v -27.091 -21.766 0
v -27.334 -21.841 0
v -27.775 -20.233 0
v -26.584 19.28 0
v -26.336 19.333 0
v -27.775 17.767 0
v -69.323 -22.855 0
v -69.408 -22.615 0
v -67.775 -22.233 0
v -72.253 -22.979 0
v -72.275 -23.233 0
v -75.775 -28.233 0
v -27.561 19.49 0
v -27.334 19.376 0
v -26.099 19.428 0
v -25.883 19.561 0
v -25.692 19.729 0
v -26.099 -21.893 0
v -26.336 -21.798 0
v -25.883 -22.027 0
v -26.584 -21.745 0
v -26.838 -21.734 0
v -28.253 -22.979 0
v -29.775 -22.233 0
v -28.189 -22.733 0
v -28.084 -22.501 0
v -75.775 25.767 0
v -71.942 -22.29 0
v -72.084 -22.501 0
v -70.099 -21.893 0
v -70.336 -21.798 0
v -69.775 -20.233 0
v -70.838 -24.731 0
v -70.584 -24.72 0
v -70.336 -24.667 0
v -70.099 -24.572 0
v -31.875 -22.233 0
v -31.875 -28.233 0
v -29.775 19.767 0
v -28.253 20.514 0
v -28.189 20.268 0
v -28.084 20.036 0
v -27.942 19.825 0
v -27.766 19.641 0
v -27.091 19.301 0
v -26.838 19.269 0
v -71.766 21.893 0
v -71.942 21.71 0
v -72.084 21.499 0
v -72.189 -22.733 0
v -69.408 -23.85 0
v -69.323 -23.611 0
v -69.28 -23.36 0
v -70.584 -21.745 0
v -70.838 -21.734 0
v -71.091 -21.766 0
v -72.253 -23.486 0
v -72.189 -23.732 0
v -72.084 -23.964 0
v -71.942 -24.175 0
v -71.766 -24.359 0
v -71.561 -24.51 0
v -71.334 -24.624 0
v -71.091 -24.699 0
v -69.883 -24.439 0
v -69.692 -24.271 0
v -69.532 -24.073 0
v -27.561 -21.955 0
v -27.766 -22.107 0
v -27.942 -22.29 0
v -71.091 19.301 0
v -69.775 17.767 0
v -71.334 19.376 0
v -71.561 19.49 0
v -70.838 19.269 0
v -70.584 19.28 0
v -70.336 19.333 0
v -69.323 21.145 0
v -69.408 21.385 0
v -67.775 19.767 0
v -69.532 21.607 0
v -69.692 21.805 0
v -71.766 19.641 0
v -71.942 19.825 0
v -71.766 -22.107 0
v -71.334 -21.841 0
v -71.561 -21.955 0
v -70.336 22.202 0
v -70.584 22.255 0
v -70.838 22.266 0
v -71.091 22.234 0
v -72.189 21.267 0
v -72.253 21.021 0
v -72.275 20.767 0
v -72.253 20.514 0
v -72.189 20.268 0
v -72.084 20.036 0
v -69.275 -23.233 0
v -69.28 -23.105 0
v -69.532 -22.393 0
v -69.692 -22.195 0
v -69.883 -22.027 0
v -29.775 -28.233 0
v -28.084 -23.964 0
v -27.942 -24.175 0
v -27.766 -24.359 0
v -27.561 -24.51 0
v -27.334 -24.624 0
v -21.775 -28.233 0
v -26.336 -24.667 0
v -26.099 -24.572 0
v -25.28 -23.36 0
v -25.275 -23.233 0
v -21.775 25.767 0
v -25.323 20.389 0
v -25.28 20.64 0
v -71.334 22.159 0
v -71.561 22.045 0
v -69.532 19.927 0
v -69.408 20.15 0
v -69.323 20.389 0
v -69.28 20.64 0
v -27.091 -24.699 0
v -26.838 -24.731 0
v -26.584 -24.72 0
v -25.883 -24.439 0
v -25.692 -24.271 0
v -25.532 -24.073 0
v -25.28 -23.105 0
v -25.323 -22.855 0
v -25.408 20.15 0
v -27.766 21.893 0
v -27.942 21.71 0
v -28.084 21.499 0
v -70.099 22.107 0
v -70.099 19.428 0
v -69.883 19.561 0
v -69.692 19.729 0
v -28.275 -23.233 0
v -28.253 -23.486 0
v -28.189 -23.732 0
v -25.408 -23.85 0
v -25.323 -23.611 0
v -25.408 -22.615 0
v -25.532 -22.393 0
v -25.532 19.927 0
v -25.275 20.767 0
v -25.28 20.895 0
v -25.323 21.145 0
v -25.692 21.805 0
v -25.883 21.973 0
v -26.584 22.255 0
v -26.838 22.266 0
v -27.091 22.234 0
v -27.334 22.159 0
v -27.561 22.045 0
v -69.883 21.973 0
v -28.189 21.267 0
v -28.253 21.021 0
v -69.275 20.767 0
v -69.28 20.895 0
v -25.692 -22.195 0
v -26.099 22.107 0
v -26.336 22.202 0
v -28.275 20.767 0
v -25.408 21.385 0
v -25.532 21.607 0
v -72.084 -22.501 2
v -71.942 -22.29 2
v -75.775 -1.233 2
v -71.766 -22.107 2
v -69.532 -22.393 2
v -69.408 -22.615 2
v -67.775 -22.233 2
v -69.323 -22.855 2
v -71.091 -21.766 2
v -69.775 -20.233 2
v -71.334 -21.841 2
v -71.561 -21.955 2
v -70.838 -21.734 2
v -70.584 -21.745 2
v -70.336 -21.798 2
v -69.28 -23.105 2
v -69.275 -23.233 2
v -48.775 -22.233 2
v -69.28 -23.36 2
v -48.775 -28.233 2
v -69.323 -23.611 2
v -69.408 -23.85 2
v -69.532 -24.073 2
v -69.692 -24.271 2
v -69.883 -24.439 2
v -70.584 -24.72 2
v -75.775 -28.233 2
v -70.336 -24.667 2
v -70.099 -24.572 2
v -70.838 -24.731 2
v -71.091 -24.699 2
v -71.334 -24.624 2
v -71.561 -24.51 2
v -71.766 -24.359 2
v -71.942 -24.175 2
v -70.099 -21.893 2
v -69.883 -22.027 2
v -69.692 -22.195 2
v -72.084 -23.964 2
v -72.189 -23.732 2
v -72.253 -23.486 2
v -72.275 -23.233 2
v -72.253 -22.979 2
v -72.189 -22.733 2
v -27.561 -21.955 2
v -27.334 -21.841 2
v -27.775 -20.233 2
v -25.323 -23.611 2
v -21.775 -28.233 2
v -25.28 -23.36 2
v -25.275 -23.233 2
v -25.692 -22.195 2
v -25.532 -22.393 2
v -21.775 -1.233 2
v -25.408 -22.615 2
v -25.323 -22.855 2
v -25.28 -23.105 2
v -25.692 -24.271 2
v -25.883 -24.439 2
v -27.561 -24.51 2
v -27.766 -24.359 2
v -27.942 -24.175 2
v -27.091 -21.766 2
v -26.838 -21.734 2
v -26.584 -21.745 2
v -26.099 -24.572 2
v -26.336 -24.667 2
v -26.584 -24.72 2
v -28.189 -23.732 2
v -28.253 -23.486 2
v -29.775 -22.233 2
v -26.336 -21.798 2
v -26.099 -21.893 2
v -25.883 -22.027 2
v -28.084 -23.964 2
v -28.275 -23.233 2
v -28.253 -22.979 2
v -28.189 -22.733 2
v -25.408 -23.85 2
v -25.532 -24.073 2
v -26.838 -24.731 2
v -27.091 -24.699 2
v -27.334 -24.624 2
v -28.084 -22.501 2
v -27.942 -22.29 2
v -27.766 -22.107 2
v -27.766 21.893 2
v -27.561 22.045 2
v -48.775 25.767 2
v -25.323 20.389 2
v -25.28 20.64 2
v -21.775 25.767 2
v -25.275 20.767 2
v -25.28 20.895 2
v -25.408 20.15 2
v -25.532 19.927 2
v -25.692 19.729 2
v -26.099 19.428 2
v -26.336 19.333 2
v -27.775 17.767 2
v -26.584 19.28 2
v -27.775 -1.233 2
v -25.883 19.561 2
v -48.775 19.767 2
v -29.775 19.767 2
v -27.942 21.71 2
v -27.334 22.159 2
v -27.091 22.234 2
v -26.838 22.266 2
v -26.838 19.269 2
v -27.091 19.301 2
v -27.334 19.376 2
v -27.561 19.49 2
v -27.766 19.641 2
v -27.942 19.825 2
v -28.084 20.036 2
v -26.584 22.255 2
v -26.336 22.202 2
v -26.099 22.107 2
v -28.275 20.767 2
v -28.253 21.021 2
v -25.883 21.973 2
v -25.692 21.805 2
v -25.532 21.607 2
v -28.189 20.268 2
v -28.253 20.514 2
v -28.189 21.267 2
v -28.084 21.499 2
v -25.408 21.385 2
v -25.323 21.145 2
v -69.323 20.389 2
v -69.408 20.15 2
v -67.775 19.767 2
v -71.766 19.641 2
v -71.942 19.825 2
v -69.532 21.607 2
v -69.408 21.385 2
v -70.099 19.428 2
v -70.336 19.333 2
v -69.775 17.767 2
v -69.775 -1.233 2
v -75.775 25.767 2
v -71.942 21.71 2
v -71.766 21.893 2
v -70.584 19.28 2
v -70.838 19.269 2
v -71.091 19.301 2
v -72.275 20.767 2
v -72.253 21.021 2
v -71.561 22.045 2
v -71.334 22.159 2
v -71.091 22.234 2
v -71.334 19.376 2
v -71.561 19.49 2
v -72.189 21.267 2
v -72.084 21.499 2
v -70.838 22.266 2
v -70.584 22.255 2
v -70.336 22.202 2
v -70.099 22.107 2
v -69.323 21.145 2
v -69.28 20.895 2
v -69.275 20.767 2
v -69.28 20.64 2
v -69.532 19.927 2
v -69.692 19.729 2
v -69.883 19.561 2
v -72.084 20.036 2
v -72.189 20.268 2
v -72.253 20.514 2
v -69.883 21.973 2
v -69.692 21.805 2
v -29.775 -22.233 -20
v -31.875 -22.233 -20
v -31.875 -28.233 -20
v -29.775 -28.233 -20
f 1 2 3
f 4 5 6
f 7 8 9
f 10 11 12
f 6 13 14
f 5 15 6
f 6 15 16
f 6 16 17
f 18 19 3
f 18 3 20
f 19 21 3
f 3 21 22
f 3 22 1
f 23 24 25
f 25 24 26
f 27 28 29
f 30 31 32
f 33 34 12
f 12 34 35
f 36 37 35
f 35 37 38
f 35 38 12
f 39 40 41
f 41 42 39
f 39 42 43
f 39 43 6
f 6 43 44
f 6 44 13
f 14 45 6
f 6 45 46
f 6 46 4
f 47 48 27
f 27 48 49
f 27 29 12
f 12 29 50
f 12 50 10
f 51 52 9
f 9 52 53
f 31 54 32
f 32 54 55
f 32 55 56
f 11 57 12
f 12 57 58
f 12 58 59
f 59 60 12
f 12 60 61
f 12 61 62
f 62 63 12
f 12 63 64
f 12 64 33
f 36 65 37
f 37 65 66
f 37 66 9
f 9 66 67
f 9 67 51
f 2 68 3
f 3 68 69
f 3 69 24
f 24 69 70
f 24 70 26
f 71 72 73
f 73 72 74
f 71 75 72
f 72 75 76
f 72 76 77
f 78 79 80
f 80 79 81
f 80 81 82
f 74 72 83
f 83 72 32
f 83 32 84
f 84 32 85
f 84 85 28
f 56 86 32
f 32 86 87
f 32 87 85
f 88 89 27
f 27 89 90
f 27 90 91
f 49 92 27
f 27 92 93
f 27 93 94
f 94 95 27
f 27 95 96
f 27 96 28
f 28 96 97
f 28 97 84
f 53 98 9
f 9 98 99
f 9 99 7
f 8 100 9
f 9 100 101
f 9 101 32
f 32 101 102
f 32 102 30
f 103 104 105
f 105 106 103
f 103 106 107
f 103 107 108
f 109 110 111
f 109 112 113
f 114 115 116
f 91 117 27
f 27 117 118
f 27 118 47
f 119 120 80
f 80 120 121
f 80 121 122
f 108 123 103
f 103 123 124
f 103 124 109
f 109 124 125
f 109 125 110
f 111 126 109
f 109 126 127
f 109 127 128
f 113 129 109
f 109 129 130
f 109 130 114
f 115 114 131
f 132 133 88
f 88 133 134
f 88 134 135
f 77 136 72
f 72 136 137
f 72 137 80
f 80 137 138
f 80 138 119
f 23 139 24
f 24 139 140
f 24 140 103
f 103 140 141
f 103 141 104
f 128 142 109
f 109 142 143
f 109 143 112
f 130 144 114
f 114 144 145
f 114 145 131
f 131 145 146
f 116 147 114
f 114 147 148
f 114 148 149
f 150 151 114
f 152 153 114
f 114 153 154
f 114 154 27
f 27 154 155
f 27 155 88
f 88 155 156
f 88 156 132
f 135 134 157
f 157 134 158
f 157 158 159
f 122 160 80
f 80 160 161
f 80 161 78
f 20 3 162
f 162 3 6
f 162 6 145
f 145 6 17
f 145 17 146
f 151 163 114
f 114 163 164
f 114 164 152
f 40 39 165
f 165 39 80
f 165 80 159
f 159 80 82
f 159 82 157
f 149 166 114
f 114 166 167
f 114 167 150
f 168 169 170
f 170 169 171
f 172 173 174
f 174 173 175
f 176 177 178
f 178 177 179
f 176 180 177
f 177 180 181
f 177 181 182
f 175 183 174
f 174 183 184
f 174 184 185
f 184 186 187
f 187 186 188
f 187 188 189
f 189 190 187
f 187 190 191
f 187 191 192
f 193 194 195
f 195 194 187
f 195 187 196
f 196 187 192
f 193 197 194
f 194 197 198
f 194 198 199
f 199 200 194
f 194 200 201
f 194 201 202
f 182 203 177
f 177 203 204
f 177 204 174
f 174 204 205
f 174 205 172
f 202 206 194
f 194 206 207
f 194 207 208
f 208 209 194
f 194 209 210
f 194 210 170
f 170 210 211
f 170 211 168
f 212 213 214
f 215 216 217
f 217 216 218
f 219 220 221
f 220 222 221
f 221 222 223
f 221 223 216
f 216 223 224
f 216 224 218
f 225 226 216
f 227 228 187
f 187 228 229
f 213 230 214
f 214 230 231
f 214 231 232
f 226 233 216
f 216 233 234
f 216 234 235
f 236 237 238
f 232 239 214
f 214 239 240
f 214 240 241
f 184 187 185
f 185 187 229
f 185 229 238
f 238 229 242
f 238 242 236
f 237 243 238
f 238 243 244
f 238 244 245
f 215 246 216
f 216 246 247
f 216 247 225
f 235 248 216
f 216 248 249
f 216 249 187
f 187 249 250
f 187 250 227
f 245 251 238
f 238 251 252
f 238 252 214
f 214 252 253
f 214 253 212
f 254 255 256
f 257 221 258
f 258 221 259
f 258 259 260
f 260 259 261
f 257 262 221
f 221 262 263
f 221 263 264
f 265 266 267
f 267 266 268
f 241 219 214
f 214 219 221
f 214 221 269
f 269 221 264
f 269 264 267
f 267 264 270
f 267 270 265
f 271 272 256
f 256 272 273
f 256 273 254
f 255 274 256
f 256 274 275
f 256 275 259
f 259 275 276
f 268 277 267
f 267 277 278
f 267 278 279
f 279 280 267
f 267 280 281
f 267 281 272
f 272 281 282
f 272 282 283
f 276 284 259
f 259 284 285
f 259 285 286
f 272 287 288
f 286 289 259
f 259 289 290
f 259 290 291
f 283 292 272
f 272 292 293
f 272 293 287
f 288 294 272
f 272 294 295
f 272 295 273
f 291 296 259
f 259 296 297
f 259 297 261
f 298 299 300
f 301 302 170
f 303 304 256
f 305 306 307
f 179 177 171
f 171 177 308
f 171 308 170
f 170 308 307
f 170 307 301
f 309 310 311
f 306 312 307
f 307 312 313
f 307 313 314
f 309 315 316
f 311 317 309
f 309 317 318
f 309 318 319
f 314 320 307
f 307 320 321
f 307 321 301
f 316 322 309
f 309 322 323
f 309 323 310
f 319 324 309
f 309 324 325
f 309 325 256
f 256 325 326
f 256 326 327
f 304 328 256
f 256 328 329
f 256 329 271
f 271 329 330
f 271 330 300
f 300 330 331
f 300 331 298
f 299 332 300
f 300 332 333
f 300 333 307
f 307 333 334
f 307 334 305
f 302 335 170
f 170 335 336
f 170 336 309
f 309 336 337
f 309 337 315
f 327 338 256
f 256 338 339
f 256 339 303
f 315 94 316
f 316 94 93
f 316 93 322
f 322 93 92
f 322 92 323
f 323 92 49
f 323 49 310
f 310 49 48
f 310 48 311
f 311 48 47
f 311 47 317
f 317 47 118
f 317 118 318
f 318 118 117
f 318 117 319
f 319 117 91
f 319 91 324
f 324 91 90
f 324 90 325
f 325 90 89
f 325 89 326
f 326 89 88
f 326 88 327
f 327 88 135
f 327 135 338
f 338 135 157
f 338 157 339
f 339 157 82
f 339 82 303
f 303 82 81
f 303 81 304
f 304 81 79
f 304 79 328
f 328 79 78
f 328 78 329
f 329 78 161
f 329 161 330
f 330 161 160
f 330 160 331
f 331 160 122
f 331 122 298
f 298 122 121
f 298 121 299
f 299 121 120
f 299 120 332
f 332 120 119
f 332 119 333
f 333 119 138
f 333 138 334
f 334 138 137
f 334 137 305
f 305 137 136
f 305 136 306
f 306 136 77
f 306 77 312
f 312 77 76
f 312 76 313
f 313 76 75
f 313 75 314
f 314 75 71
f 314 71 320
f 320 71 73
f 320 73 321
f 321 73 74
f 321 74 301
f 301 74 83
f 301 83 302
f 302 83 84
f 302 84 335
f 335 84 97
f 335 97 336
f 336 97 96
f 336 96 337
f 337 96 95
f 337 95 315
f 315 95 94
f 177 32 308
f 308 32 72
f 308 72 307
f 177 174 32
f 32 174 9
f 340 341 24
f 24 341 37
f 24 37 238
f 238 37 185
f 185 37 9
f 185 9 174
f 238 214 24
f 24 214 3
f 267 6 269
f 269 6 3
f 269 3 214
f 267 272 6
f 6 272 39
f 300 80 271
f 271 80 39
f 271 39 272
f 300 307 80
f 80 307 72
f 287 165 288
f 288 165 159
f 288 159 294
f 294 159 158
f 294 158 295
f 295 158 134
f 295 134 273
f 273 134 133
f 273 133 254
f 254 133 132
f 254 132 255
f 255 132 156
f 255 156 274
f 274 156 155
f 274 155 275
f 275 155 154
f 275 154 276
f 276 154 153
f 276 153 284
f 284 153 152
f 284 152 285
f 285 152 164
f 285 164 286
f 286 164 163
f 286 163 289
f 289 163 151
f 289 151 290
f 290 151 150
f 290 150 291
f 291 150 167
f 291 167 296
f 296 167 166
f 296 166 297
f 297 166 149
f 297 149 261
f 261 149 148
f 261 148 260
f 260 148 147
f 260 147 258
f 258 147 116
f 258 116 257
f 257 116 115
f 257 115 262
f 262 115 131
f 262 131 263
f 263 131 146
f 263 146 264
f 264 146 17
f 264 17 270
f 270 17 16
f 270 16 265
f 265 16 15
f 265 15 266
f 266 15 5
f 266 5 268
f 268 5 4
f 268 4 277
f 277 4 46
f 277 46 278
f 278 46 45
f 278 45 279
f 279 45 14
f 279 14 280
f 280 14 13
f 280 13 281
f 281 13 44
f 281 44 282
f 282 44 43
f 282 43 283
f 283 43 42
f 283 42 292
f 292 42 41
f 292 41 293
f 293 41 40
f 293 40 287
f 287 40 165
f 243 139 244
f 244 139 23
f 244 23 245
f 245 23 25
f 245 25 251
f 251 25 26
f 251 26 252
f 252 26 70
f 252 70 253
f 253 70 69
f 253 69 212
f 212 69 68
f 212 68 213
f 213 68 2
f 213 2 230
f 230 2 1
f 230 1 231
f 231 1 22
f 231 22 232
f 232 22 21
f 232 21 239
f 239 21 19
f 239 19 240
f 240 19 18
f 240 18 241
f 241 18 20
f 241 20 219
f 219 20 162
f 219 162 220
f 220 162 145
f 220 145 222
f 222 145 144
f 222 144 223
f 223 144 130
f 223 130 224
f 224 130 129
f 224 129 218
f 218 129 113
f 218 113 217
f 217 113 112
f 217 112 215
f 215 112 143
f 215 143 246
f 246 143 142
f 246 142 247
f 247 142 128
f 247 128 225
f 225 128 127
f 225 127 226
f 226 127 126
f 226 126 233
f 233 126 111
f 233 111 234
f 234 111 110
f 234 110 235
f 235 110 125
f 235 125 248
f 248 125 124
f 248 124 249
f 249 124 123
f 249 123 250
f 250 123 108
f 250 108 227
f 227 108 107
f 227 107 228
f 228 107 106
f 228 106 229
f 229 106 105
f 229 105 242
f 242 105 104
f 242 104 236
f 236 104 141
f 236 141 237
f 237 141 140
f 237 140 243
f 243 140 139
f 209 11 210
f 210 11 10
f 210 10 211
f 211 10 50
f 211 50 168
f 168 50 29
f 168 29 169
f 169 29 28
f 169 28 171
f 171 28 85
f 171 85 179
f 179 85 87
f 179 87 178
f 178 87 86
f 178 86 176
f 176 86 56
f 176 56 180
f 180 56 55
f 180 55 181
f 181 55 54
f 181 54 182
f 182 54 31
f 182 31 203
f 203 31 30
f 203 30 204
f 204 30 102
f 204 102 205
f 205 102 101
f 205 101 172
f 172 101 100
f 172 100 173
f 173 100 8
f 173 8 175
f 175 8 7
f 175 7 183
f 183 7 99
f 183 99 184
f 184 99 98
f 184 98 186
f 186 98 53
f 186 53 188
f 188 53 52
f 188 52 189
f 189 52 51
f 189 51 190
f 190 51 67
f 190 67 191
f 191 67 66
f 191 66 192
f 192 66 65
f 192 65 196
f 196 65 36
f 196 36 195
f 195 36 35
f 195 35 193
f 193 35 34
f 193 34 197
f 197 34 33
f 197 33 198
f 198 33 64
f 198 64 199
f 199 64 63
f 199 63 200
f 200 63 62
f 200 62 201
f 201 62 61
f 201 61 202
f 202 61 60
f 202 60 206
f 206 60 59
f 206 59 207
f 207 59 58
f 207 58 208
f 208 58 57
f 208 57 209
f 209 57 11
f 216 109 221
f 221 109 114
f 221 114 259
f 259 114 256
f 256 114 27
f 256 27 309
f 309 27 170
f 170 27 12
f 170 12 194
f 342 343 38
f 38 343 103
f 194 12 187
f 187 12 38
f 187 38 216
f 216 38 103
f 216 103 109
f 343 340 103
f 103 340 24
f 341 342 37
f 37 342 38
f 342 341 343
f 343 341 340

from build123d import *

# Parameters (mm, degrees)
CROQUIS1_W              = 50
CROQUIS1_H              = 50
CROQUIS1_R              = 1.5
SALIENTE_EXTRUIR1_DEPTH = 2
CROQUIS2_W              = 54
CROQUIS2_H              = 54
CROQUIS2_W_2            = 50
CROQUIS2_H_2            = 50
SALIENTE_EXTRUIR2_DEPTH = 2
CROQUIS3_W              = 2.1
CROQUIS3_H              = 6
SALIENTE_EXTRUIR3_DEPTH = 20


with BuildPart() as part:
    # Croquis1 → Saliente-Extruir1 (new body)
    with BuildSketch(Plane.XY):
        with Locations((-48.774779829, -1.232610977)):
            Rectangle(CROQUIS1_W, CROQUIS1_H)
        with Locations((-70.774779829, 20.767389023)):
            Circle(CROQUIS1_R, mode=Mode.SUBTRACT)
        with Locations((-26.774779829, 20.767389023)):
            Circle(CROQUIS1_R, mode=Mode.SUBTRACT)
        with Locations((-26.774779829, -23.232610977)):
            Circle(CROQUIS1_R, mode=Mode.SUBTRACT)
        with Locations((-70.774779829, -23.232610977)):
            Circle(CROQUIS1_R, mode=Mode.SUBTRACT)
        Polygon((-69.774779829, 17.767389023), (-67.774779829, 19.767389023), (-29.774779829, 19.767389023), (-27.774779829, 17.767389023), (-27.774779829, -20.232610977), (-29.774779829, -22.232610977), (-67.774779829, -22.232610977), (-69.774779829, -20.232610977), align=None, mode=Mode.SUBTRACT)
    extrude(amount=SALIENTE_EXTRUIR1_DEPTH)

    # Croquis2 → Saliente-Extruir2 (add)
    with BuildSketch(Plane(origin=(0, 0, 0), x_dir=(-1, 0, 0), z_dir=(0, 0, -1))):
        with Locations((48.774779829, -1.232610977)):
            Rectangle(CROQUIS2_W, CROQUIS2_H)
        with Locations((48.774779829, -1.232610977)):
            Rectangle(CROQUIS2_W_2, CROQUIS2_H_2, mode=Mode.SUBTRACT)
    extrude(amount=-SALIENTE_EXTRUIR2_DEPTH)

    # Croquis3 → Saliente-Extruir3 (add)
    with BuildSketch(Plane(origin=(0, 0, 0), x_dir=(-1, 0, 0), z_dir=(0, 0, -1))):
        with Locations((30.824779829, -25.232610977)):
            Rectangle(CROQUIS3_W, CROQUIS3_H)
    extrude(amount=SALIENTE_EXTRUIR3_DEPTH)


solid = part.part
